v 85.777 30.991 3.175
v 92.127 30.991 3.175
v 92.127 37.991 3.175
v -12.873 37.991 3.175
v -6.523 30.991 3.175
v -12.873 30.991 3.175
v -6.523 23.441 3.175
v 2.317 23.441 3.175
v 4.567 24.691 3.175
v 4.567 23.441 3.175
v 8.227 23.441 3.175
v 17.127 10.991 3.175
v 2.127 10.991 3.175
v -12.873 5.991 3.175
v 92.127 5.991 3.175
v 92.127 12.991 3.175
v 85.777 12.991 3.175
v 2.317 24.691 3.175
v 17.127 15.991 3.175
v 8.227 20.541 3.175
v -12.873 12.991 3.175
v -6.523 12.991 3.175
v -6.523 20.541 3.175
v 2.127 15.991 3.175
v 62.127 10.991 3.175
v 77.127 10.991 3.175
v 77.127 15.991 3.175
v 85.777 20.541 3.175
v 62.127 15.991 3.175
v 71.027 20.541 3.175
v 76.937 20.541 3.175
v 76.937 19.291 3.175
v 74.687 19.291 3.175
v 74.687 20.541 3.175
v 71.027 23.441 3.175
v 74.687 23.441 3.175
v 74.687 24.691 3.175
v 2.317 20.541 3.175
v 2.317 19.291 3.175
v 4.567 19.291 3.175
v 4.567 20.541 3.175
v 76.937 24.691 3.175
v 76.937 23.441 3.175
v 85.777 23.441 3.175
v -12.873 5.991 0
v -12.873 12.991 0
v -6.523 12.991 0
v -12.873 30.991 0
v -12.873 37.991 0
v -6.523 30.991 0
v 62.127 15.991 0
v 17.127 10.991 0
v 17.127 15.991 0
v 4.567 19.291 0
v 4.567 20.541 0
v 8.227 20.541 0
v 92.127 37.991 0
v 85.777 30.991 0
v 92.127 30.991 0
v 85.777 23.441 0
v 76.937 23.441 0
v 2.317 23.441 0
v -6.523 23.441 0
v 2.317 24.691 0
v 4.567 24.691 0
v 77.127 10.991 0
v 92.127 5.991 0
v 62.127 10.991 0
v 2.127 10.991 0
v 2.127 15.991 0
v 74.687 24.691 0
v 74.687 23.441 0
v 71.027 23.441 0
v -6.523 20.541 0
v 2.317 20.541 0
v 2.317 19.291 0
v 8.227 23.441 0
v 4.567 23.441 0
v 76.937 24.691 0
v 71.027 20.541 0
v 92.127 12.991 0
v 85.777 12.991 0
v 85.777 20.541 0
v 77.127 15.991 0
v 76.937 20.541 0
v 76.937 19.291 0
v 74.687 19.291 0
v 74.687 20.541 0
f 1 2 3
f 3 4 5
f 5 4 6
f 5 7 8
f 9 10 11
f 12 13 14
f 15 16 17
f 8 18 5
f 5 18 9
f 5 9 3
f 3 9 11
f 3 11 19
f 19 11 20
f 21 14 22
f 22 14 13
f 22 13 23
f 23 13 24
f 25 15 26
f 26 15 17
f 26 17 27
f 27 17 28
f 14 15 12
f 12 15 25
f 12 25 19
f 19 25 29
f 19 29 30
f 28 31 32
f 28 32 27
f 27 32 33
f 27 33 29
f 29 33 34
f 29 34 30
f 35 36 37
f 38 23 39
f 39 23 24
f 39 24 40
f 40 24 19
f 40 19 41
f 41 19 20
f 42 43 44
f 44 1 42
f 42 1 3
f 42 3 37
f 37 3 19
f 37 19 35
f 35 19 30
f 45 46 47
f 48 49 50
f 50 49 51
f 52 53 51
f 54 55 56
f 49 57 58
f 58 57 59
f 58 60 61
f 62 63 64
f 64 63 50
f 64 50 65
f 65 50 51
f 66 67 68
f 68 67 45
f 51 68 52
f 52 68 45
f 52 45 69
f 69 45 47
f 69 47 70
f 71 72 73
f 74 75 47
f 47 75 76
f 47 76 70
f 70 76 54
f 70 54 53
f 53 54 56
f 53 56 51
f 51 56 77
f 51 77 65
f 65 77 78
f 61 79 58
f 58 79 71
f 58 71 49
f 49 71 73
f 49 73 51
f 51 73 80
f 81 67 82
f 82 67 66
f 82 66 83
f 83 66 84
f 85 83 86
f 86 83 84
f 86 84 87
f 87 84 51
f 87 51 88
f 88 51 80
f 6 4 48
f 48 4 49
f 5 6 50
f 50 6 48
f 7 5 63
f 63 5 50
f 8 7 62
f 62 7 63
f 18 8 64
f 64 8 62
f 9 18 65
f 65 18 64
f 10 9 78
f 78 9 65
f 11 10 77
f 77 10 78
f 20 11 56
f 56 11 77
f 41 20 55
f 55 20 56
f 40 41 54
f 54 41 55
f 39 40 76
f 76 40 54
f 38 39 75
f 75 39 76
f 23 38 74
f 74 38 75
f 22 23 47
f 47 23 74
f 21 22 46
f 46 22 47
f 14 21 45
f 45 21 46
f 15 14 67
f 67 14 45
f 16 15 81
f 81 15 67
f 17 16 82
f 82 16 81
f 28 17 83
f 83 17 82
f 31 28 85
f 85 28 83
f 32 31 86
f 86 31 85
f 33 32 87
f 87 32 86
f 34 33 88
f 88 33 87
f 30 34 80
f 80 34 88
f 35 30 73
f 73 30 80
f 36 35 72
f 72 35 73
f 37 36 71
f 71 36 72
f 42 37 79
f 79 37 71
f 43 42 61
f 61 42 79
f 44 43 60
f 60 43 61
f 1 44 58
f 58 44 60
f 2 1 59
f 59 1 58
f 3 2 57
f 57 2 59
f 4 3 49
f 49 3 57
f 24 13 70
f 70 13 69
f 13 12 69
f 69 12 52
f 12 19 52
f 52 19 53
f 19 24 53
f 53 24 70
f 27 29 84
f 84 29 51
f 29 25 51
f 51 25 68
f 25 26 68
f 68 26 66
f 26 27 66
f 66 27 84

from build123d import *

# Parameters (mm, degrees)
SKETCH1_W      = 15
SKETCH1_H      = 5
EXTRUDE1_DEPTH = 3.175


with BuildPart() as part:
    # Sketch1 → Extrude1 (new body)
    with BuildSketch(Plane.XY):
        Polygon((92.127144536, 5.990828295), (92.127144536, 12.990828295), (85.777144536, 12.990828295), (85.777144536, 20.540828295), (76.937144536, 20.540828295), (76.937144536, 19.290828295), (74.687144536, 19.290828295), (74.687144536, 20.540828295), (71.027144536, 20.540828295), (71.027144536, 23.440828295), (74.687144536, 23.440828295), (74.687144536, 24.690828295), (76.937144536, 24.690828295), (76.937144536, 23.440828295), (85.777144536, 23.440828295), (85.777144536, 30.990828295), (92.127144536, 30.990828295), (92.127144536, 37.990828295), (-12.872855464, 37.990828295), (-12.872855464, 30.990828295), (-6.522855464, 30.990828295), (-6.522855464, 23.440828295), (2.317144536, 23.440828295), (2.317144536, 24.690828295), (4.567144536, 24.690828295), (4.567144536, 23.440828295), (8.227144536, 23.440828295), (8.227144536, 20.540828295), (4.567144536, 20.540828295), (4.567144536, 19.290828295), (2.317144536, 19.290828295), (2.317144536, 20.540828295), (-6.522855464, 20.540828295), (-6.522855464, 12.990828295), (-12.872855464, 12.990828295), (-12.872855464, 5.990828295), align=None)
        with Locations((9.627144536, 13.490828295)):
            Rectangle(SKETCH1_W, SKETCH1_H, mode=Mode.SUBTRACT)
        with Locations((69.627144536, 13.490828295)):
            Rectangle(SKETCH1_W, SKETCH1_H, mode=Mode.SUBTRACT)
    extrude(amount=EXTRUDE1_DEPTH)


solid = part.part
